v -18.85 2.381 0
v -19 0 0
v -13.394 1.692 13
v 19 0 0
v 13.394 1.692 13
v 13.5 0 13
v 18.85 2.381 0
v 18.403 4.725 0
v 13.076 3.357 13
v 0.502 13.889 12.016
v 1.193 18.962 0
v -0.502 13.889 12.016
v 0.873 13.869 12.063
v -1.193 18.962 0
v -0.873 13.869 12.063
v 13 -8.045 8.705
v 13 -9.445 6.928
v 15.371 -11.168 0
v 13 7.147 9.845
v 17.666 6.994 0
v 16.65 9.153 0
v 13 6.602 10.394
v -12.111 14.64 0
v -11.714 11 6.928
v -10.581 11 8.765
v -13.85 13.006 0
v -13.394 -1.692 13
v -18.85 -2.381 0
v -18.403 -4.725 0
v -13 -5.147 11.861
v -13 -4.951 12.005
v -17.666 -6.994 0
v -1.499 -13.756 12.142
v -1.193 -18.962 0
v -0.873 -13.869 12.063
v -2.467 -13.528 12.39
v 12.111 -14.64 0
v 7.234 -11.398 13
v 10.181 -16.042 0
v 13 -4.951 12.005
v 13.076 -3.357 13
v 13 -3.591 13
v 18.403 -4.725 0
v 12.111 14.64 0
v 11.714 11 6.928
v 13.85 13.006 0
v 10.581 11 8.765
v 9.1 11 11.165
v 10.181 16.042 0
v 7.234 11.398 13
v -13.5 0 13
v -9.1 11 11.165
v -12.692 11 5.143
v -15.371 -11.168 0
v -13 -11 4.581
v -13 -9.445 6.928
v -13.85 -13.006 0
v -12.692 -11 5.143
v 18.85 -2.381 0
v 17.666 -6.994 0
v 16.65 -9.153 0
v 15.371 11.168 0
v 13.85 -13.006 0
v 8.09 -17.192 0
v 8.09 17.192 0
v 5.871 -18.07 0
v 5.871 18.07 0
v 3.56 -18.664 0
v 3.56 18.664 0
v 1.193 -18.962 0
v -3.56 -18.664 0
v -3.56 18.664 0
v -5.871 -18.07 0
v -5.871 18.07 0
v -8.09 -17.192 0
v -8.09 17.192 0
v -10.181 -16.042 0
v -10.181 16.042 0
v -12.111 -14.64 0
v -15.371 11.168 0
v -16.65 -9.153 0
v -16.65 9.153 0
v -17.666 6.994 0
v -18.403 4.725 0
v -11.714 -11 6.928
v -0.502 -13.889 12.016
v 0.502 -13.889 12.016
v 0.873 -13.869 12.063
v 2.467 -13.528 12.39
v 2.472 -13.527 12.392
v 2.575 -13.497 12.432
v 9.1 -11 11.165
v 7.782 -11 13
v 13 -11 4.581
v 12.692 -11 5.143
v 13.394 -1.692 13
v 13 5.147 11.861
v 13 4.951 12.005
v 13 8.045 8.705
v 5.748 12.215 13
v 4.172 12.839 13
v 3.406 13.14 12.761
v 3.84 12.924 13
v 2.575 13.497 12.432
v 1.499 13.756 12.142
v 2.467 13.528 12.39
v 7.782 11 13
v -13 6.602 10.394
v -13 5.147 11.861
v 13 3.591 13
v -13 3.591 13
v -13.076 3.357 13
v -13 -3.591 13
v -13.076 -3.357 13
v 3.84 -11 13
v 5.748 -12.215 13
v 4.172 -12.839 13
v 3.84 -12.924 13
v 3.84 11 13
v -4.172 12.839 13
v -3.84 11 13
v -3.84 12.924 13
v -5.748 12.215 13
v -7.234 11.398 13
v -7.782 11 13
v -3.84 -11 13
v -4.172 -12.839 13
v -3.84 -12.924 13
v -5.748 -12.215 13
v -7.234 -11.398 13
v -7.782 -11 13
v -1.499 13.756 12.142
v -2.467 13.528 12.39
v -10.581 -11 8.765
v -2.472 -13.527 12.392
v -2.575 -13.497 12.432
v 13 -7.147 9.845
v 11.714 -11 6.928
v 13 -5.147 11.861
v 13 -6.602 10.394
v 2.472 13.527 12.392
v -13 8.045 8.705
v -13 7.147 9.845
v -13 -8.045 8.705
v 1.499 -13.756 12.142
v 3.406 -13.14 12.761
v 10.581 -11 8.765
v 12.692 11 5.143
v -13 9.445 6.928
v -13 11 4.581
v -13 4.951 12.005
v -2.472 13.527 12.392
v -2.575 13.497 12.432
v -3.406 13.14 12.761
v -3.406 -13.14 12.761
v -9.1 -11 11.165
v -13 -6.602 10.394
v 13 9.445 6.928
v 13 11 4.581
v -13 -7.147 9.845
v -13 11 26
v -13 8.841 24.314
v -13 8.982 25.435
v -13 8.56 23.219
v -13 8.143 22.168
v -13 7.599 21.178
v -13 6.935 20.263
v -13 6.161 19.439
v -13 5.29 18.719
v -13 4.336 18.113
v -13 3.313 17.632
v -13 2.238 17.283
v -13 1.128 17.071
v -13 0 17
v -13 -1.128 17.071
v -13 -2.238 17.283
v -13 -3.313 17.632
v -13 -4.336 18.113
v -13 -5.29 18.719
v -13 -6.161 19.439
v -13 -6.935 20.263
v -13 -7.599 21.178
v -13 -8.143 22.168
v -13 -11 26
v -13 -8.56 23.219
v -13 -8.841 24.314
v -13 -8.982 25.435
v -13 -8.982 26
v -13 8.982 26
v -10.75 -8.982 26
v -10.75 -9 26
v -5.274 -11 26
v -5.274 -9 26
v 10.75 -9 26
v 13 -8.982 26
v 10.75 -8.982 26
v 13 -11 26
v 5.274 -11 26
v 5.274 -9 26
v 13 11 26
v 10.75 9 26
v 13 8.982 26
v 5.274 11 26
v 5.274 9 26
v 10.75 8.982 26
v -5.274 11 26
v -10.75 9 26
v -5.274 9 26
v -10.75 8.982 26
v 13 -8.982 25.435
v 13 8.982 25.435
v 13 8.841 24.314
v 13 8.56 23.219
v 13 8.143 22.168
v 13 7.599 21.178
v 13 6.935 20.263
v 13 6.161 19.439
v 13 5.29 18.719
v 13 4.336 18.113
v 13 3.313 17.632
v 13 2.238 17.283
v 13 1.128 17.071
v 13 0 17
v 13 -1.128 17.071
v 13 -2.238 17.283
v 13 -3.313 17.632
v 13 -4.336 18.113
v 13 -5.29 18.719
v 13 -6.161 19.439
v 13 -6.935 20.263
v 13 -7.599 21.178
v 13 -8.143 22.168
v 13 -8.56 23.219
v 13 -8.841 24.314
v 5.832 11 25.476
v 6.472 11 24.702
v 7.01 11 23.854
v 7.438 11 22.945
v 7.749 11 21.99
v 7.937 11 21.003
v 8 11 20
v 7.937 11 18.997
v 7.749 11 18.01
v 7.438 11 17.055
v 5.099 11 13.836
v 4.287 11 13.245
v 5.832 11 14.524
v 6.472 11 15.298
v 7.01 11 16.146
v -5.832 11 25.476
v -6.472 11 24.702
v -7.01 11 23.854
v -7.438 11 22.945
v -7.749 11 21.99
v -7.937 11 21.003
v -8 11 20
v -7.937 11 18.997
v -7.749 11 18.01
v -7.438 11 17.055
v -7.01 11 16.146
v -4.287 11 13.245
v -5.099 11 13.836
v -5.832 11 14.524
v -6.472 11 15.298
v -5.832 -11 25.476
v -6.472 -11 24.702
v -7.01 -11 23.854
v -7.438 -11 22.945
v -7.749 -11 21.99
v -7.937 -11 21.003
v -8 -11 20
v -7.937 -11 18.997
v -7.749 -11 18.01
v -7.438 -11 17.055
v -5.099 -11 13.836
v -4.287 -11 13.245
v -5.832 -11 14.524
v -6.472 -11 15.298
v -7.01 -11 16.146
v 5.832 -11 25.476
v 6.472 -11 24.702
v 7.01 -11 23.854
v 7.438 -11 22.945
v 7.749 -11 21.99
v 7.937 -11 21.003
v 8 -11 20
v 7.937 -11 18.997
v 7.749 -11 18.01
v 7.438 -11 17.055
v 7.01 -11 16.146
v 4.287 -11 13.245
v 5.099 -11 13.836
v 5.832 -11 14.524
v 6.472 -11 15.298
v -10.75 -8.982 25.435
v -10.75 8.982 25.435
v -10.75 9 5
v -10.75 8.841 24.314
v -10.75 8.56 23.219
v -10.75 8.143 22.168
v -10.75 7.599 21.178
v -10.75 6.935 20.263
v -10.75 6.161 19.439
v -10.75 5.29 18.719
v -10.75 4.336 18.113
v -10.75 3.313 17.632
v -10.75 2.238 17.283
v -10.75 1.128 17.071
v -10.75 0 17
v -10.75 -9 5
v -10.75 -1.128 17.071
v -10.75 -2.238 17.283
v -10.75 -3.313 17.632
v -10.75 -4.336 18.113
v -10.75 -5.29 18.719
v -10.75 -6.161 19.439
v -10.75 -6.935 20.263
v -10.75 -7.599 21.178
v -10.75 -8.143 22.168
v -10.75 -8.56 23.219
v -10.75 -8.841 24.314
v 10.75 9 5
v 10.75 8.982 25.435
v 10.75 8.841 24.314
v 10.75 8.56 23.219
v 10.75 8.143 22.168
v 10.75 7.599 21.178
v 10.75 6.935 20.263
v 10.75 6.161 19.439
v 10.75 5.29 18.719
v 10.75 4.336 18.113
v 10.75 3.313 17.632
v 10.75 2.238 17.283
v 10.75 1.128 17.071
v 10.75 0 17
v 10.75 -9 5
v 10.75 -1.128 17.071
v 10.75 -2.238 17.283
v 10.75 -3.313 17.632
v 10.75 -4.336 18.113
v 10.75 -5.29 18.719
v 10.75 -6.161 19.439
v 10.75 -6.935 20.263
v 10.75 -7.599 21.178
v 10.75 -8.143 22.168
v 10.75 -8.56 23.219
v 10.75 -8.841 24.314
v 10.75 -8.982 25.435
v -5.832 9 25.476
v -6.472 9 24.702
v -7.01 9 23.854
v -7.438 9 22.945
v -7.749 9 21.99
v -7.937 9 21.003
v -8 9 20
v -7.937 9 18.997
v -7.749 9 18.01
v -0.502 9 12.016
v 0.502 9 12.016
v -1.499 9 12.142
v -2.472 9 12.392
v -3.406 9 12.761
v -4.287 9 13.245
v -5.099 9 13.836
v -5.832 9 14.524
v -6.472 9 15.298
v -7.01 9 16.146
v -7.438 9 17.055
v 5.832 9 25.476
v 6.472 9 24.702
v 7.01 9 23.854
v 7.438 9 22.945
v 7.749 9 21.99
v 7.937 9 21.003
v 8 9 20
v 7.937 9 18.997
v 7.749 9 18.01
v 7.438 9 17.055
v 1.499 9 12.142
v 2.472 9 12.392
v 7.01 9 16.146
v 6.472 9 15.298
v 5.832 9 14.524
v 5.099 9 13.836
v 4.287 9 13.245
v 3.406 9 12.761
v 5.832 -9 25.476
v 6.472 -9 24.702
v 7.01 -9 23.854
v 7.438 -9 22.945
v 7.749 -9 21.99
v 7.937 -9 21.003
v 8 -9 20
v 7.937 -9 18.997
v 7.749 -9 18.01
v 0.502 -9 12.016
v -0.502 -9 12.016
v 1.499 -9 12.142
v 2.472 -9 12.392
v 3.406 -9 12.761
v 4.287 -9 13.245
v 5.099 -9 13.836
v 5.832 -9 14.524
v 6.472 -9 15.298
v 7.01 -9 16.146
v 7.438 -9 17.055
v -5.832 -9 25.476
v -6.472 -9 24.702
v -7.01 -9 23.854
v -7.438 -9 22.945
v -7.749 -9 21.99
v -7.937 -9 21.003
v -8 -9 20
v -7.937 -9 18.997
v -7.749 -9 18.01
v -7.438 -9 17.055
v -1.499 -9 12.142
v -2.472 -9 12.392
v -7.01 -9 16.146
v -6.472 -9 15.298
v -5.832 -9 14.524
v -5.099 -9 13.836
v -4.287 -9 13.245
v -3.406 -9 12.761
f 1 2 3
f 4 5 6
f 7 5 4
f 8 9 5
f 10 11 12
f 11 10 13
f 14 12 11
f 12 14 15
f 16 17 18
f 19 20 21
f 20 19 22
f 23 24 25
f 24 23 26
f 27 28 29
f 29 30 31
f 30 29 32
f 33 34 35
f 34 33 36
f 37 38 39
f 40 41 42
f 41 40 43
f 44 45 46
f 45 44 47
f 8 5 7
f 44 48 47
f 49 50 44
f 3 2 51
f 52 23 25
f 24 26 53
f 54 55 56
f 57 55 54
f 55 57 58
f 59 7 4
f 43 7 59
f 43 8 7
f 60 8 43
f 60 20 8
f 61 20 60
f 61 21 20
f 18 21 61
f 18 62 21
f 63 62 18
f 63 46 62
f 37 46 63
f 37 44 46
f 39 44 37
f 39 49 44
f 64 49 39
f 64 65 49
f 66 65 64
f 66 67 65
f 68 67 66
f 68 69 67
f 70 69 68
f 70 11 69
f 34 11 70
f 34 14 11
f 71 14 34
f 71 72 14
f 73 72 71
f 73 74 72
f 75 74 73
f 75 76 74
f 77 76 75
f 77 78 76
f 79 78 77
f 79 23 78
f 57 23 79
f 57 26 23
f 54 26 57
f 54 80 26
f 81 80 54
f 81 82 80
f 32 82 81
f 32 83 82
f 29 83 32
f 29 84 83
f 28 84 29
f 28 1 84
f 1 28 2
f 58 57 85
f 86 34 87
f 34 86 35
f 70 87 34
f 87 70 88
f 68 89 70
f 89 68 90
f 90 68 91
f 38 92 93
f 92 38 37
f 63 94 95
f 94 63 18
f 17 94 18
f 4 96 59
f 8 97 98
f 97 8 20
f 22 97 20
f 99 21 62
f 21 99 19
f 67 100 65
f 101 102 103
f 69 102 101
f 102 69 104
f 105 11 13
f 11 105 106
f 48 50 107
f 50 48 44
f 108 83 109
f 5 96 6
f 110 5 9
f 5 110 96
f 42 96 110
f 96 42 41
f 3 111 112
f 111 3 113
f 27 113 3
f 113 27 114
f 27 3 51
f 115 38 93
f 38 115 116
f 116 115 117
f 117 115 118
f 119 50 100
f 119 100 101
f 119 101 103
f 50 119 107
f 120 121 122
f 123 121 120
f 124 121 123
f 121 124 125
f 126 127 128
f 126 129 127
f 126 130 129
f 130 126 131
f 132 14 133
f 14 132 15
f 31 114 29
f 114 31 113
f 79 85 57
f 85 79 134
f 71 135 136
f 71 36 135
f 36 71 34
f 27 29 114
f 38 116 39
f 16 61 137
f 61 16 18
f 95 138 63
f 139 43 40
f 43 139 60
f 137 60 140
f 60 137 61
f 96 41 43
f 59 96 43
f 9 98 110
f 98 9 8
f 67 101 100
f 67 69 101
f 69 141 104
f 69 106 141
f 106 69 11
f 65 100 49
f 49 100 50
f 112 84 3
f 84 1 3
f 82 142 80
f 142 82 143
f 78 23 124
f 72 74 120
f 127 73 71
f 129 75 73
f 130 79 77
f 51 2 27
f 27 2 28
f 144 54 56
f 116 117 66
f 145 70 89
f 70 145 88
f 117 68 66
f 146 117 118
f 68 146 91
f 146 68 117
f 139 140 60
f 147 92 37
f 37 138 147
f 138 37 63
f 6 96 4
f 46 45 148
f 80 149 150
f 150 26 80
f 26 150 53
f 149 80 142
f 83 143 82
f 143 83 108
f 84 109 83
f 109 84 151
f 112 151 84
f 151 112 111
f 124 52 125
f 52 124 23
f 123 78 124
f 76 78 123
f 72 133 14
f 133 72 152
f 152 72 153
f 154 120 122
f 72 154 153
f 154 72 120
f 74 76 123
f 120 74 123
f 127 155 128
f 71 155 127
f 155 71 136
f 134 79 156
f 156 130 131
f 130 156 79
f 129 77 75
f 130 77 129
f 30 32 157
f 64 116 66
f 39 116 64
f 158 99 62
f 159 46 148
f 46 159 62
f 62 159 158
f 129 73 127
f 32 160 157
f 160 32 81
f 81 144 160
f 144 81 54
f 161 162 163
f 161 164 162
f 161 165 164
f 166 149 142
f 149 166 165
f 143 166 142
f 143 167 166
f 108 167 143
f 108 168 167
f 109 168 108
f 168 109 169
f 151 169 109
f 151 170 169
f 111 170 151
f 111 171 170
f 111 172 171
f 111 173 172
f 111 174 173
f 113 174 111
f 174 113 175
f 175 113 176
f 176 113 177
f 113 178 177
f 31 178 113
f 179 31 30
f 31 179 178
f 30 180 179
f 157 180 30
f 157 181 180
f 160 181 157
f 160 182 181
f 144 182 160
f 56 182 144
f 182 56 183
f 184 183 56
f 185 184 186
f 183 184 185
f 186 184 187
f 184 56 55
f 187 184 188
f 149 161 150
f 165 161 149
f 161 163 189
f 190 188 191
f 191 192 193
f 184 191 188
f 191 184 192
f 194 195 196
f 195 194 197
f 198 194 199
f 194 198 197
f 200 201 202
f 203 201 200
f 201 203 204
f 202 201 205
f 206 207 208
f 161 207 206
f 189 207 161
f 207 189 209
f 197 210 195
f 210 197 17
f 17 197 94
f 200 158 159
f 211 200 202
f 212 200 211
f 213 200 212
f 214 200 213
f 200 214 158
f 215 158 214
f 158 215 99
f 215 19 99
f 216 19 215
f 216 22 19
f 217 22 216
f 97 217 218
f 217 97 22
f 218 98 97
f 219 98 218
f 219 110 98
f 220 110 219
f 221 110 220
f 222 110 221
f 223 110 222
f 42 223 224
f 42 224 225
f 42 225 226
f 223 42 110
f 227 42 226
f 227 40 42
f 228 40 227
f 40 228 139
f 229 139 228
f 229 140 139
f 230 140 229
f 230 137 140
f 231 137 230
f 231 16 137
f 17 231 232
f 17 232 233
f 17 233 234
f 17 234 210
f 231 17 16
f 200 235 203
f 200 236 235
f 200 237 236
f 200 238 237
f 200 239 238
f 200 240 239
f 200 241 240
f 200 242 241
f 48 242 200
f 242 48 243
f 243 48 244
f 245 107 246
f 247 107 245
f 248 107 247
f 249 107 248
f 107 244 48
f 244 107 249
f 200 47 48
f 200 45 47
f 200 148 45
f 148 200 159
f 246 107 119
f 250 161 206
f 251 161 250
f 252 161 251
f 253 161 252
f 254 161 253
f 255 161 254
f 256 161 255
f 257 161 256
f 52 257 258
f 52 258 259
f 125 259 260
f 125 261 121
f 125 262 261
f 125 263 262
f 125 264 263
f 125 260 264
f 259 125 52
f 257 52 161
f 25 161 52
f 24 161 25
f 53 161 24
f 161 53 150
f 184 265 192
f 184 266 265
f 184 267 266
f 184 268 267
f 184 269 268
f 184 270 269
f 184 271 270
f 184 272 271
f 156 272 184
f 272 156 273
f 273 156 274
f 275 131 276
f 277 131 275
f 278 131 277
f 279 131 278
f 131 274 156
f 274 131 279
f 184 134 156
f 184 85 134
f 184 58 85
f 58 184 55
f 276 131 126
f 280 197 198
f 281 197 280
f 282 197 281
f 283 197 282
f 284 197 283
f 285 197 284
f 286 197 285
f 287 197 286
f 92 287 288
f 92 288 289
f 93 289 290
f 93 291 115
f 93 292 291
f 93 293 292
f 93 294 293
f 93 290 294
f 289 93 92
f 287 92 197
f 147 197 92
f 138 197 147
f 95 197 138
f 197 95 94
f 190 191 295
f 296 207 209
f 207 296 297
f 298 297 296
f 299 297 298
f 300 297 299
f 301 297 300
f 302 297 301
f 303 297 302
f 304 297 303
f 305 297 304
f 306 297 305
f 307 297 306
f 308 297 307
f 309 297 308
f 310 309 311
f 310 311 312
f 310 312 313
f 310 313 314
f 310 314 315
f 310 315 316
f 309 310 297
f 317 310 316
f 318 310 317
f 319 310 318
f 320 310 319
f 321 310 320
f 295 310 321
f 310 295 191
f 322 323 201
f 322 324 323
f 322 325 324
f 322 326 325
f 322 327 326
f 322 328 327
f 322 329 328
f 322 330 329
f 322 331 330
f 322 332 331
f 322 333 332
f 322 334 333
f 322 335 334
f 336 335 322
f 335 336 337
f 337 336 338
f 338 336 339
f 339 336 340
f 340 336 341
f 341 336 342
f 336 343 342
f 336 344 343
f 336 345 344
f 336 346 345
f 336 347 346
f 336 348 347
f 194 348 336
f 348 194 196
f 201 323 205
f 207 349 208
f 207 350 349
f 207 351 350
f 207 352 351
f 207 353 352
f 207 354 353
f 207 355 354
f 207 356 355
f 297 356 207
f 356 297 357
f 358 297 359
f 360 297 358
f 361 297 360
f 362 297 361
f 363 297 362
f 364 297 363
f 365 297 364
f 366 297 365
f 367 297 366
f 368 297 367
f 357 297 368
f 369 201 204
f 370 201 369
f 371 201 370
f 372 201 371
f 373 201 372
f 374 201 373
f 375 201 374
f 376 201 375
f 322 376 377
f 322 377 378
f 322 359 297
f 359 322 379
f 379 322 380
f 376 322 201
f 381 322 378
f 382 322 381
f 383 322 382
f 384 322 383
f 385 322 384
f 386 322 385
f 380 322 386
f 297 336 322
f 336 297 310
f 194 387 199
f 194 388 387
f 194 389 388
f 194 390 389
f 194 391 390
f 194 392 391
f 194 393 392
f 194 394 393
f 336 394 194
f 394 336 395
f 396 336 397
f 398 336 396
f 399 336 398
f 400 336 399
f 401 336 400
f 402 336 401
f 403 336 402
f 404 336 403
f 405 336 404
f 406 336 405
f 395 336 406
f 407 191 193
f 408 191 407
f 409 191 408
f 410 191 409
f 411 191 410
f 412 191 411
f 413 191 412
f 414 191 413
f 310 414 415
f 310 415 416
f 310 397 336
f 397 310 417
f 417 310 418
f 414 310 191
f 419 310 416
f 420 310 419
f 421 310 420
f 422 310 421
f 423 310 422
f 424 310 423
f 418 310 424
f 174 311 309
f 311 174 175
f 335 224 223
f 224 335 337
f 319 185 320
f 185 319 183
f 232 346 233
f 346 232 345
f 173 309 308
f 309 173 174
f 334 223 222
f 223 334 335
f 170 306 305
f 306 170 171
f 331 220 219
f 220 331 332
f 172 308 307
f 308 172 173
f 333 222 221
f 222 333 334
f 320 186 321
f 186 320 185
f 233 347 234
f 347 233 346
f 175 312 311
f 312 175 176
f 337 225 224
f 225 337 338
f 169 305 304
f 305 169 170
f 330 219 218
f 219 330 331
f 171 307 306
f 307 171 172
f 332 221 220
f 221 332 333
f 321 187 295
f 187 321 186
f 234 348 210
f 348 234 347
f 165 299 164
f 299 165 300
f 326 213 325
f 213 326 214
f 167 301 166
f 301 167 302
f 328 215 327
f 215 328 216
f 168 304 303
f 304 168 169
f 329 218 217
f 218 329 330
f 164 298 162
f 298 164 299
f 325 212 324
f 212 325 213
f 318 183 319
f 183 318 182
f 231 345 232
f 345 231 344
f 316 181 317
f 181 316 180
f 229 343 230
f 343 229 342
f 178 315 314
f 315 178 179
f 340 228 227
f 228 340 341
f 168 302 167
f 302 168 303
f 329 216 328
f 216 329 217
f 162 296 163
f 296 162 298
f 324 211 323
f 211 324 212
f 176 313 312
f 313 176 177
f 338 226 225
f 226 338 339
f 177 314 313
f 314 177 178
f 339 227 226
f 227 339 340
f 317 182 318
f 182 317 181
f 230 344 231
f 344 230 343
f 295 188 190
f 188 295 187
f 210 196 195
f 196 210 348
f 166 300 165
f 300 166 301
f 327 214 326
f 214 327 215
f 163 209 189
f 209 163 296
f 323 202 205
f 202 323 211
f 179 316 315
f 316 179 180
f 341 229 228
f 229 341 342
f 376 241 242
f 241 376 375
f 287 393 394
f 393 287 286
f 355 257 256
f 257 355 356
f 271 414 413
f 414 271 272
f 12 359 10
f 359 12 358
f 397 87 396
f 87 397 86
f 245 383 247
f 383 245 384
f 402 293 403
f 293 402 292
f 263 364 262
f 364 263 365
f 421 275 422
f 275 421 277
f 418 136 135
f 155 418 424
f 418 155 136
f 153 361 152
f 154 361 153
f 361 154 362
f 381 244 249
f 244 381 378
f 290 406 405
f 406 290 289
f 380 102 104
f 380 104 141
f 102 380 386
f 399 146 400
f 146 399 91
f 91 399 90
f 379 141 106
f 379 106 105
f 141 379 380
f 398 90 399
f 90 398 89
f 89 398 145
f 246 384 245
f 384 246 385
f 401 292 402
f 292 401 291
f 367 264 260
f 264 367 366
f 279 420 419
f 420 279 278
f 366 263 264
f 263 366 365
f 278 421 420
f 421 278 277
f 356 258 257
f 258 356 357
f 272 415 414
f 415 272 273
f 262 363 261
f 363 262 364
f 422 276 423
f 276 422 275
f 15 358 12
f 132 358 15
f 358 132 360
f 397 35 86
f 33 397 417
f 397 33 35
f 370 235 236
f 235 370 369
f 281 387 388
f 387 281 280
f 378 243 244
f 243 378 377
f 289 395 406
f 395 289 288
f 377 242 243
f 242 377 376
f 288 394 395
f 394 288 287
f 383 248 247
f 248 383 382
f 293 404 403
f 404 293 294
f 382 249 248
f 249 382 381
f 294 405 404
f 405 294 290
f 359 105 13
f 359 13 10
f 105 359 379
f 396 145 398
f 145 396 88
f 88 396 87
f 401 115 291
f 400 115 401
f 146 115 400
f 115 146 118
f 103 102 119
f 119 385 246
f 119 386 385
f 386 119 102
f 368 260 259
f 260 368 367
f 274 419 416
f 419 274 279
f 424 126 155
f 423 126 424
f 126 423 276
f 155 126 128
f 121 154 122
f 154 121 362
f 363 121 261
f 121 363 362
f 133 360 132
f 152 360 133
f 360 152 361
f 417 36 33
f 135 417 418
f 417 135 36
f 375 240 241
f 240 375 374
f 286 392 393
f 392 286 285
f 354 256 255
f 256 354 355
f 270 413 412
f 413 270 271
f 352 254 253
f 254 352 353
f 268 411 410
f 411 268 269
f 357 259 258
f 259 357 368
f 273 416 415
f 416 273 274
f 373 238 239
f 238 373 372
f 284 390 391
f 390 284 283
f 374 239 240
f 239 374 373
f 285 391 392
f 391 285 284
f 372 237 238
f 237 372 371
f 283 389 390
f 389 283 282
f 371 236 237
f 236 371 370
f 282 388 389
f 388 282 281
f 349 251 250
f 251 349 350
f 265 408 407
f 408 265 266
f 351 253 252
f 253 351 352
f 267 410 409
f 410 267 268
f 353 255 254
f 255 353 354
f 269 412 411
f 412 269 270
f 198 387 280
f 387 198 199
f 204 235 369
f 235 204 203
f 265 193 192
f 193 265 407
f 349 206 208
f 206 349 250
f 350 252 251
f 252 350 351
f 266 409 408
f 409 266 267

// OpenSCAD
$fn=50;


module prusa_foot() {
    difference() {
        union() {
            cylinder(d1=38, d2=27, h=13);
            translate([0,0,26/2]) cube([26, 22, 26], center=true);
        }
        translate([0,0,25/2+5]) cube([21.5, 18, 25], center=true);
        translate([-35/2,0,18/2+17]) rotate([0,90,0]) cylinder(d=18, h=35);
        translate([0,-35/2, 12+16/2]) rotate([-90,0,0]) cylinder(d=16, h=35);
    }
}

prusa_foot();
